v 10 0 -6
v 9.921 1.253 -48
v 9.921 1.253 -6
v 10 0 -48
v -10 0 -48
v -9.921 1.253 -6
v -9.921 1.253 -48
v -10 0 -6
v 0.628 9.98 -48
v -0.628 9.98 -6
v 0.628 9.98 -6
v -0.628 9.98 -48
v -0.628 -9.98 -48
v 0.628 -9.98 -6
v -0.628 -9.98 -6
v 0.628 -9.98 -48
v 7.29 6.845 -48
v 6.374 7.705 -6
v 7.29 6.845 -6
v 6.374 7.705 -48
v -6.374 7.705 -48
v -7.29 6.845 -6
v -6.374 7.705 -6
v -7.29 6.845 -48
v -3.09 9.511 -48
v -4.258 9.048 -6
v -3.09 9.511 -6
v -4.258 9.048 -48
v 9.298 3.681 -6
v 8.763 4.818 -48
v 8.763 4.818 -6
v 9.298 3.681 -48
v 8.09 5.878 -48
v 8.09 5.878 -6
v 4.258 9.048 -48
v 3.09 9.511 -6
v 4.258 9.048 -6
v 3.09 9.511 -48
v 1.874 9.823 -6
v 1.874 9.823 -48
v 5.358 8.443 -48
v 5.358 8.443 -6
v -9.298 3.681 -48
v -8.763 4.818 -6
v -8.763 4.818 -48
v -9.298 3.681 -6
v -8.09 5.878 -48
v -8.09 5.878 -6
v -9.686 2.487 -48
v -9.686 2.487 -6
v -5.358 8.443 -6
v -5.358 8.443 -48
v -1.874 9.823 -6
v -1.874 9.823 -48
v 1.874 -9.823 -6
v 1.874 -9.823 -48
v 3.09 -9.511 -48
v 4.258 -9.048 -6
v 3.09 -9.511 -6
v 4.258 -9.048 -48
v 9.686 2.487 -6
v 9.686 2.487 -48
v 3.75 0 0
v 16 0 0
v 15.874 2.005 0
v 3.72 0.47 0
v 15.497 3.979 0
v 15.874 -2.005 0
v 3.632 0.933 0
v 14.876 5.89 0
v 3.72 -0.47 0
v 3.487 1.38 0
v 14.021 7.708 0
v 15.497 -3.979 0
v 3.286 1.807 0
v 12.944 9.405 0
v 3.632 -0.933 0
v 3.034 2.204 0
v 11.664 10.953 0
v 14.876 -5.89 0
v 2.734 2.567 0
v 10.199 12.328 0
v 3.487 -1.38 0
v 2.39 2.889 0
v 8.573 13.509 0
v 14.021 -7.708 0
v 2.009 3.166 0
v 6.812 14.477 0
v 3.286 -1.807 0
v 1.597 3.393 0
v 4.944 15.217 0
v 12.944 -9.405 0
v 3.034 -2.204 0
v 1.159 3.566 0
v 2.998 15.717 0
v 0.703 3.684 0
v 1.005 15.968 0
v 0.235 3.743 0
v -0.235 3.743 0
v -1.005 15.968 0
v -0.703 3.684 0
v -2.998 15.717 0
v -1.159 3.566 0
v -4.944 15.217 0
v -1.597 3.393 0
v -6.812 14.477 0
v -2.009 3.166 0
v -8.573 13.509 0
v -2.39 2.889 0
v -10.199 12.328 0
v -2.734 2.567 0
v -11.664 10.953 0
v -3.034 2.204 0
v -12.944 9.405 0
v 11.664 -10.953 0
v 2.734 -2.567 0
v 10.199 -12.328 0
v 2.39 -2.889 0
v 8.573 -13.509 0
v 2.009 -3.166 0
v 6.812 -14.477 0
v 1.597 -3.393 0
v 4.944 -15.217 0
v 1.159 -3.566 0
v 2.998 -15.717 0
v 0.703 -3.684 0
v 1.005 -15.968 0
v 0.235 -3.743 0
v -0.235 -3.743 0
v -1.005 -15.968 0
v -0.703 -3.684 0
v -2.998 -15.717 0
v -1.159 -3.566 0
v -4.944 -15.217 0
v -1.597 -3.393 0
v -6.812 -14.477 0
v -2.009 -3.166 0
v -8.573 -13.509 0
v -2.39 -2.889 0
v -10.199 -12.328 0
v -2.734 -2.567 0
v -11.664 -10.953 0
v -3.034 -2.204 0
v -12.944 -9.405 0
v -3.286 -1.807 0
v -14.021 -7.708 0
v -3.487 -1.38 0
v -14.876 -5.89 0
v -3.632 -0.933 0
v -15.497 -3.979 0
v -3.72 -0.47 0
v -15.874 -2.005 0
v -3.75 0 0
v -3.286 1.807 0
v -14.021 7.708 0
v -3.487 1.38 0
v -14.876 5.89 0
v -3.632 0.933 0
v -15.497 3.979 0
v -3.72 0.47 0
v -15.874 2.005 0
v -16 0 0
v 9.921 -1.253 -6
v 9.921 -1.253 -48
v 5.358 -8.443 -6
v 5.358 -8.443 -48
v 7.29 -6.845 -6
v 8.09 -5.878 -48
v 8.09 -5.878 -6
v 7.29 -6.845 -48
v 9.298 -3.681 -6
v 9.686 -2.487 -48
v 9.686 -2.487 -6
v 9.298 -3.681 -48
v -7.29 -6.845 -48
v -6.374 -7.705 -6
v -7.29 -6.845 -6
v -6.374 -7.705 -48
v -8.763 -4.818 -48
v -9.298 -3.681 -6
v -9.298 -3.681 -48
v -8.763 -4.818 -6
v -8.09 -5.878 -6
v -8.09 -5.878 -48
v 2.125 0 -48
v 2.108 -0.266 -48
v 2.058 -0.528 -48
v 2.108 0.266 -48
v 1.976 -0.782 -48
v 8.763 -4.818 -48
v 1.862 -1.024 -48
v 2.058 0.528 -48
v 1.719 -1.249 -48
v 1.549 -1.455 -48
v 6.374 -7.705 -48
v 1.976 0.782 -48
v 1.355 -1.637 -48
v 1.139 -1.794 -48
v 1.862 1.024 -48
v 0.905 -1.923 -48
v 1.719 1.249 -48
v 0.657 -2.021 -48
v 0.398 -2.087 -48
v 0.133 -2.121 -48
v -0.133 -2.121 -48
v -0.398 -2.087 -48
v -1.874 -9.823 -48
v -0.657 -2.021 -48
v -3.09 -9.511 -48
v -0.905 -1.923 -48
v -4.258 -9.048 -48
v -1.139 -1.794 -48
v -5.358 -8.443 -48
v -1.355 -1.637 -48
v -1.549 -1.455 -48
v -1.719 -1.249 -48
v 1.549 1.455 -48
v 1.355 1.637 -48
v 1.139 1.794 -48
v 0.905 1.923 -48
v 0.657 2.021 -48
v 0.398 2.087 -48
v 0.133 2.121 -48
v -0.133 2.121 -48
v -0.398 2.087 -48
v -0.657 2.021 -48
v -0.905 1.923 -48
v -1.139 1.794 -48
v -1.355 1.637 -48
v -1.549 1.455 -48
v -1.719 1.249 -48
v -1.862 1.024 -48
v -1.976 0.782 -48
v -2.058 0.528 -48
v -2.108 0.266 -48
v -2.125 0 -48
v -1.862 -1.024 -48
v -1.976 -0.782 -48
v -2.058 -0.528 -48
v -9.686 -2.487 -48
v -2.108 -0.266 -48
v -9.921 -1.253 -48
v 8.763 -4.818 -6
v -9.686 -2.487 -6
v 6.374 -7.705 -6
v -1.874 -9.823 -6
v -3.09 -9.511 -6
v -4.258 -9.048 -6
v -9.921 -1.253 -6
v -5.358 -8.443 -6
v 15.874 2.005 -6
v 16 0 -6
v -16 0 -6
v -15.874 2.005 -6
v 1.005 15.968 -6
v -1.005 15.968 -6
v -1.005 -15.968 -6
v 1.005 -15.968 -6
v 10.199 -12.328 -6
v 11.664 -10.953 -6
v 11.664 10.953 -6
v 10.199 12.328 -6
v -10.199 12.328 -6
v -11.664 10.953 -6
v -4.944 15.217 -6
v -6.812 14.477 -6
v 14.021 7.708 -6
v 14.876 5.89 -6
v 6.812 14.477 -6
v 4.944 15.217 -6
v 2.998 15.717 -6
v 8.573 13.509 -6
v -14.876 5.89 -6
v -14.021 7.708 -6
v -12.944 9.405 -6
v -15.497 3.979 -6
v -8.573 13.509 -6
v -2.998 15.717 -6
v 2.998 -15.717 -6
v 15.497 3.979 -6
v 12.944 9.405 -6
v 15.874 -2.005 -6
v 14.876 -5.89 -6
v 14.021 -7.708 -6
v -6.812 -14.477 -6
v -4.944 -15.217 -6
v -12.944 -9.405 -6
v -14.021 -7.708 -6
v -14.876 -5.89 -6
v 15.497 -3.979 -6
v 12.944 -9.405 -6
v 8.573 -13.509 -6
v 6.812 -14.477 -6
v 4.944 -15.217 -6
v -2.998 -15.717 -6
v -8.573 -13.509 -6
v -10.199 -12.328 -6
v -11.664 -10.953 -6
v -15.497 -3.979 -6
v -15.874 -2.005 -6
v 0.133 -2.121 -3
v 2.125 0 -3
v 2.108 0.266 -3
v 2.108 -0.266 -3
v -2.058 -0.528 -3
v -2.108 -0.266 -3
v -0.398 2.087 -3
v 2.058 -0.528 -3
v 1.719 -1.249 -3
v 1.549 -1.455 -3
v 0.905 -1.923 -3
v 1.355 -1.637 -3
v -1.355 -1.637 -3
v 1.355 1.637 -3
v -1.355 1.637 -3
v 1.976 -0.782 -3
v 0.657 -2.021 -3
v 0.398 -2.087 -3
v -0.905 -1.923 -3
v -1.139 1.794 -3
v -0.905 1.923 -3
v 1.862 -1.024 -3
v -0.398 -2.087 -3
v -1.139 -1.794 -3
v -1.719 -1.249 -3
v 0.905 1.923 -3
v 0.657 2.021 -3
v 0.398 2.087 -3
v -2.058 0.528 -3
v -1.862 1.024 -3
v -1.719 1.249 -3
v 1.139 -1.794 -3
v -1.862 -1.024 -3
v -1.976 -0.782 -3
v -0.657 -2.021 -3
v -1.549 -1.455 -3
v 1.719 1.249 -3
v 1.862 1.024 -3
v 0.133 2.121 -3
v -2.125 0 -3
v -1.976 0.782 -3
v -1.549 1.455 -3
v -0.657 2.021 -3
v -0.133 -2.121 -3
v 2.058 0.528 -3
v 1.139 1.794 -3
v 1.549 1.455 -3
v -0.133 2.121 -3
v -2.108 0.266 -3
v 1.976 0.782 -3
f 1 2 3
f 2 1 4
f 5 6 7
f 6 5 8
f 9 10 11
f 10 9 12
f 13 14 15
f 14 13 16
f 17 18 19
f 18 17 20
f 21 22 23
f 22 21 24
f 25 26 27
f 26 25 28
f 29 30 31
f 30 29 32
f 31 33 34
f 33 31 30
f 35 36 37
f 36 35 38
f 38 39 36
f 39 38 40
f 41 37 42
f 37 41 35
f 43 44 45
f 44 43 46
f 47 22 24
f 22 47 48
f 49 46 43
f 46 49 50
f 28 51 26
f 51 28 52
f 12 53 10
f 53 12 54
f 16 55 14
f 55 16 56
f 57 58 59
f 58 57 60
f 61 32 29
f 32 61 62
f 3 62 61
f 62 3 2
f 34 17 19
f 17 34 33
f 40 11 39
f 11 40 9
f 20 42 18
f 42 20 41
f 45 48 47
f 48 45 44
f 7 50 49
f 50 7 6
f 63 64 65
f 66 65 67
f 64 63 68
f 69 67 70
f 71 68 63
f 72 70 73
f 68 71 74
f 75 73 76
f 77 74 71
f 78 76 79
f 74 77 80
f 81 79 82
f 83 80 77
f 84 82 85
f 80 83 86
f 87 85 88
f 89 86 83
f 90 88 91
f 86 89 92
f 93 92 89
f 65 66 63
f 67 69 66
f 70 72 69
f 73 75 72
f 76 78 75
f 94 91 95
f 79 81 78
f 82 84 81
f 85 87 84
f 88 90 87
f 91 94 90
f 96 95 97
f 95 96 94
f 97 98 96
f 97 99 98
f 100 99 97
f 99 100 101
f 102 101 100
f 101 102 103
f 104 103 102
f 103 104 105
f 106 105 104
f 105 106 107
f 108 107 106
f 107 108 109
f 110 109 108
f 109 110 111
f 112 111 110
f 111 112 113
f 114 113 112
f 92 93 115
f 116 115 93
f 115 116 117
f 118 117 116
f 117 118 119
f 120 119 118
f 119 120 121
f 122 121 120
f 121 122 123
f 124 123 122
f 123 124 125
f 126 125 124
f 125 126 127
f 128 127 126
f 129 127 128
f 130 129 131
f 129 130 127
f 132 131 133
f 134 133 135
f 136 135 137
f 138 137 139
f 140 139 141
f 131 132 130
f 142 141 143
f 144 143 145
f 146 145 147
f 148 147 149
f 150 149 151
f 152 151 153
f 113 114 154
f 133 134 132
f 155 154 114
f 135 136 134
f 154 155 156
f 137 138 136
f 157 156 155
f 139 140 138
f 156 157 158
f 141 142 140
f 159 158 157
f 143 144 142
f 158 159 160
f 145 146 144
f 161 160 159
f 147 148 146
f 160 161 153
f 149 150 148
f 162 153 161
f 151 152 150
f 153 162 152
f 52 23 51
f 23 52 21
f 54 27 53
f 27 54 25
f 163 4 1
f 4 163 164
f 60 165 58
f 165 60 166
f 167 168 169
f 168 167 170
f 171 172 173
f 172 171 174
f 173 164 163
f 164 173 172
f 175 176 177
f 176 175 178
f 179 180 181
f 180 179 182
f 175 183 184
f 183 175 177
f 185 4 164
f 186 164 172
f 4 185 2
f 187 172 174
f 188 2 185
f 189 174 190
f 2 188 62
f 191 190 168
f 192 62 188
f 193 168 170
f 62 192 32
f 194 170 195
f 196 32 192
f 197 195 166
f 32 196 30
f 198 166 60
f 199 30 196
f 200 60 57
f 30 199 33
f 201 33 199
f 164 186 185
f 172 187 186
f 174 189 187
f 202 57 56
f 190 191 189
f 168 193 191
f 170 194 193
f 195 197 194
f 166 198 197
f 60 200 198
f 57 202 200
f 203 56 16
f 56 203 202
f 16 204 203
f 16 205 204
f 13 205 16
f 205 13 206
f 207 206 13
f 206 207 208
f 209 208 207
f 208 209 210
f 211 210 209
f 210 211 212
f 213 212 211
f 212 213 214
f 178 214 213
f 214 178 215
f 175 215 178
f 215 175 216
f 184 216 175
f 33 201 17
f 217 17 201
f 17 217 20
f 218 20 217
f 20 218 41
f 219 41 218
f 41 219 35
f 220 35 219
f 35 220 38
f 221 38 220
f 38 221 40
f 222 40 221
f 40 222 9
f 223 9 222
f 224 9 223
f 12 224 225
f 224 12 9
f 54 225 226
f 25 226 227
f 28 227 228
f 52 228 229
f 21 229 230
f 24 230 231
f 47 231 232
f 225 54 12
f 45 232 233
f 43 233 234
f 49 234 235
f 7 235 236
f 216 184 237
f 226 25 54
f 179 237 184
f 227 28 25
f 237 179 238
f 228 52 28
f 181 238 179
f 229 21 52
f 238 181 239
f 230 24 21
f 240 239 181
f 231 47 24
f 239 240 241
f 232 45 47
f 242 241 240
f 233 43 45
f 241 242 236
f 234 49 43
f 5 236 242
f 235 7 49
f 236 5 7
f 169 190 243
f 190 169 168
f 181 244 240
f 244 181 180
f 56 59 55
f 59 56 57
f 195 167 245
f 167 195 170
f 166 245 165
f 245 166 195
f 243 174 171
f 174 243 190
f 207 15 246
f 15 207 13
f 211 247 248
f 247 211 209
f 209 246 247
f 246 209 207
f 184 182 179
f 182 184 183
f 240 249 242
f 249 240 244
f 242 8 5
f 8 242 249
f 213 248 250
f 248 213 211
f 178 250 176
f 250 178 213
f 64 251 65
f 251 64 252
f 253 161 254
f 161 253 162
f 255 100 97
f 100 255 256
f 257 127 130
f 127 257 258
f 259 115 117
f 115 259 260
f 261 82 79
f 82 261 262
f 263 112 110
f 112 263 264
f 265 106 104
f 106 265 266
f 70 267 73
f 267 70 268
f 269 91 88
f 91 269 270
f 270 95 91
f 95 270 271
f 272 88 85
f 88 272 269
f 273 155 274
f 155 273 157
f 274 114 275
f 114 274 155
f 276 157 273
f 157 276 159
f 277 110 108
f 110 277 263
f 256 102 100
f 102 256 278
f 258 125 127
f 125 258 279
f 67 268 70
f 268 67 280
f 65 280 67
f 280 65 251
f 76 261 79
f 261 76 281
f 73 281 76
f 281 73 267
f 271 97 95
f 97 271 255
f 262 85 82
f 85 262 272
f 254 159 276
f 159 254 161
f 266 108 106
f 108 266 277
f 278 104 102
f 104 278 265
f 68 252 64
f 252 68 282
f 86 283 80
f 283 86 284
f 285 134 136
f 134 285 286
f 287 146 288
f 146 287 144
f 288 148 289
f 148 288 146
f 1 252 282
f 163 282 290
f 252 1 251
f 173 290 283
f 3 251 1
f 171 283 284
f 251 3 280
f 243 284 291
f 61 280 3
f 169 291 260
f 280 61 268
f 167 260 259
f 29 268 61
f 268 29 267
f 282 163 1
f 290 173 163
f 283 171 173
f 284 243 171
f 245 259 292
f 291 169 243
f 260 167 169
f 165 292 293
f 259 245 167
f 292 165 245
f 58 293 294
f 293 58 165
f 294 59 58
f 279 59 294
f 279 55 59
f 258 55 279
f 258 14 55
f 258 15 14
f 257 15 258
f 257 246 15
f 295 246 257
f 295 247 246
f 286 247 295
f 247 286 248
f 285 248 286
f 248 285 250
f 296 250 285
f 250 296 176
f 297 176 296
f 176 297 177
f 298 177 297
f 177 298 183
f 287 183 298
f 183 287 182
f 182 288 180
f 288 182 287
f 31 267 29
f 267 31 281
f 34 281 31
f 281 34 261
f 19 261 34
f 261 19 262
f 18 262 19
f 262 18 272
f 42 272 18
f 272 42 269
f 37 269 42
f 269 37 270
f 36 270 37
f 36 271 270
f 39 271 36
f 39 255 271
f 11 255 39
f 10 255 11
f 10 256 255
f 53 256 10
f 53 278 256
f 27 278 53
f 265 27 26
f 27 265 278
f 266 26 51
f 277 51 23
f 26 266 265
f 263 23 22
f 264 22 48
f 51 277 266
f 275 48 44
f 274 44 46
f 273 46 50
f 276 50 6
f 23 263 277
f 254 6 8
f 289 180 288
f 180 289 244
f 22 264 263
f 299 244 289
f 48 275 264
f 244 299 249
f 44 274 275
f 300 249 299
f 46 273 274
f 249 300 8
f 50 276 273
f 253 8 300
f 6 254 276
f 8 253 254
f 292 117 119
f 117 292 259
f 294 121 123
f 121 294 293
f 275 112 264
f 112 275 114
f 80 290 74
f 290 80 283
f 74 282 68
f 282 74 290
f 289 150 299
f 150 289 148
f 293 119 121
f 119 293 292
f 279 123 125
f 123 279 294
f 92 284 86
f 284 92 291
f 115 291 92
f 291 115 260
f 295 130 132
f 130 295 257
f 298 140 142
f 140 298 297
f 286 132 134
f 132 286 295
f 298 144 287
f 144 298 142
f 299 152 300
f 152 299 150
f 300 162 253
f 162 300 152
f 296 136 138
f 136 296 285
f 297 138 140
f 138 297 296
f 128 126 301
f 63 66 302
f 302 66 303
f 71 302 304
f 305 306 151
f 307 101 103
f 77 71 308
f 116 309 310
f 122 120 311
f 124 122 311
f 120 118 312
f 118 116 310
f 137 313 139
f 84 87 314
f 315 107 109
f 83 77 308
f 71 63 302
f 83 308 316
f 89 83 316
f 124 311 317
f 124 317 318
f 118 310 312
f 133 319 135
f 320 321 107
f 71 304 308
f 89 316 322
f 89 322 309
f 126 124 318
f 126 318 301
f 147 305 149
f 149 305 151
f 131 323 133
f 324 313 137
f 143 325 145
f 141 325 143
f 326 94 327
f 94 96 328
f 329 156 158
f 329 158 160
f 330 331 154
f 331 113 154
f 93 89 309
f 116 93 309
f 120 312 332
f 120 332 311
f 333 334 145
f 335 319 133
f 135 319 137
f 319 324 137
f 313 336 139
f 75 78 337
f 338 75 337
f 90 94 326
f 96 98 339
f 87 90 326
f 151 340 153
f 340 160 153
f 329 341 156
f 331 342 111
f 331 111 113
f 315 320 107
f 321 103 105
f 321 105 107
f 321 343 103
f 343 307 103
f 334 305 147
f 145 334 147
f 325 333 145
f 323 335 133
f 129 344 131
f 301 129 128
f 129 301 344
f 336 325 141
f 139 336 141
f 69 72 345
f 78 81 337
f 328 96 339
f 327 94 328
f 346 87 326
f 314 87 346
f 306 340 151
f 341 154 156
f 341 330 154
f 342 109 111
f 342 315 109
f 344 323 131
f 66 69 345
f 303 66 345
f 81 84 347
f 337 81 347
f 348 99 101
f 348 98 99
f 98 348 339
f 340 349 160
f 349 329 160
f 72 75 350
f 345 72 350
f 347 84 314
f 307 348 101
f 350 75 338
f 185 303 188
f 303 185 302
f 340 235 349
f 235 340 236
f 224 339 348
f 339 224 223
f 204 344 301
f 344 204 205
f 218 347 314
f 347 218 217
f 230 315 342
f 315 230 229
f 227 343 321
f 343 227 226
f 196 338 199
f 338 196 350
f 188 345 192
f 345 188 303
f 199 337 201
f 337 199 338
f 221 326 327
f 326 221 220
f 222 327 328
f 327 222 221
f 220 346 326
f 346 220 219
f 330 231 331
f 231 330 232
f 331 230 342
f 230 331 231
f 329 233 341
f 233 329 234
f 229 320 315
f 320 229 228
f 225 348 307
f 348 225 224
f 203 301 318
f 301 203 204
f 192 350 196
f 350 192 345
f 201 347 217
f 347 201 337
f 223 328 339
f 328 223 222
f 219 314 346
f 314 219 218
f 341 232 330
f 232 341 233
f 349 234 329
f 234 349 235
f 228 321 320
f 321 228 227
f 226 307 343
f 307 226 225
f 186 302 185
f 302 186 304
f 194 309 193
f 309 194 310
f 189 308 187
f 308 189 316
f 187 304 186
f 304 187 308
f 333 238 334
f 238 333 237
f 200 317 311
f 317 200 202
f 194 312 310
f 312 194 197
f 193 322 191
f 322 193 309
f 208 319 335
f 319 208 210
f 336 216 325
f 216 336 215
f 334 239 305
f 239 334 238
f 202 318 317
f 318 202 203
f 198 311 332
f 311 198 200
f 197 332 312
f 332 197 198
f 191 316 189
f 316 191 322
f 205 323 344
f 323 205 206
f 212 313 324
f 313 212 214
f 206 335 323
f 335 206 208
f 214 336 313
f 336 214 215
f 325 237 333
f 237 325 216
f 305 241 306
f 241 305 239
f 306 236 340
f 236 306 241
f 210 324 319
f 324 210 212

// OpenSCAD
$fn = 50;


difference() {
	union() {
		translate(v = [0, 0, -48.0000000000]) {
			cylinder(h = 48, r = 10.0000000000);
		}
		translate(v = [0, 0, -6.0000000000]) {
			cylinder(h = 6, r = 16.0000000000);
		}
	}
	union() {
		translate(v = [0, 0, 0]) {
			rotate(a = [0, 0, 0]) {
				difference() {
					union() {
						#translate(v = [0, 0, -48.0000000000]) {
							cylinder(h = 48, r = 2.0000000000);
						}
						#translate(v = [0, 0, -3]) {
							cylinder(h = 3, r1 = 2.1250000000, r2 = 3.7500000000);
						}
						#translate(v = [0, 0, -48.0000000000]) {
							cylinder(h = 48, r = 2.1250000000);
						}
						#translate(v = [0, 0, -48.0000000000]) {
							cylinder(h = 48, r = 2.0000000000);
						}
					}
					union();
				}
			}
		}
	}
}
